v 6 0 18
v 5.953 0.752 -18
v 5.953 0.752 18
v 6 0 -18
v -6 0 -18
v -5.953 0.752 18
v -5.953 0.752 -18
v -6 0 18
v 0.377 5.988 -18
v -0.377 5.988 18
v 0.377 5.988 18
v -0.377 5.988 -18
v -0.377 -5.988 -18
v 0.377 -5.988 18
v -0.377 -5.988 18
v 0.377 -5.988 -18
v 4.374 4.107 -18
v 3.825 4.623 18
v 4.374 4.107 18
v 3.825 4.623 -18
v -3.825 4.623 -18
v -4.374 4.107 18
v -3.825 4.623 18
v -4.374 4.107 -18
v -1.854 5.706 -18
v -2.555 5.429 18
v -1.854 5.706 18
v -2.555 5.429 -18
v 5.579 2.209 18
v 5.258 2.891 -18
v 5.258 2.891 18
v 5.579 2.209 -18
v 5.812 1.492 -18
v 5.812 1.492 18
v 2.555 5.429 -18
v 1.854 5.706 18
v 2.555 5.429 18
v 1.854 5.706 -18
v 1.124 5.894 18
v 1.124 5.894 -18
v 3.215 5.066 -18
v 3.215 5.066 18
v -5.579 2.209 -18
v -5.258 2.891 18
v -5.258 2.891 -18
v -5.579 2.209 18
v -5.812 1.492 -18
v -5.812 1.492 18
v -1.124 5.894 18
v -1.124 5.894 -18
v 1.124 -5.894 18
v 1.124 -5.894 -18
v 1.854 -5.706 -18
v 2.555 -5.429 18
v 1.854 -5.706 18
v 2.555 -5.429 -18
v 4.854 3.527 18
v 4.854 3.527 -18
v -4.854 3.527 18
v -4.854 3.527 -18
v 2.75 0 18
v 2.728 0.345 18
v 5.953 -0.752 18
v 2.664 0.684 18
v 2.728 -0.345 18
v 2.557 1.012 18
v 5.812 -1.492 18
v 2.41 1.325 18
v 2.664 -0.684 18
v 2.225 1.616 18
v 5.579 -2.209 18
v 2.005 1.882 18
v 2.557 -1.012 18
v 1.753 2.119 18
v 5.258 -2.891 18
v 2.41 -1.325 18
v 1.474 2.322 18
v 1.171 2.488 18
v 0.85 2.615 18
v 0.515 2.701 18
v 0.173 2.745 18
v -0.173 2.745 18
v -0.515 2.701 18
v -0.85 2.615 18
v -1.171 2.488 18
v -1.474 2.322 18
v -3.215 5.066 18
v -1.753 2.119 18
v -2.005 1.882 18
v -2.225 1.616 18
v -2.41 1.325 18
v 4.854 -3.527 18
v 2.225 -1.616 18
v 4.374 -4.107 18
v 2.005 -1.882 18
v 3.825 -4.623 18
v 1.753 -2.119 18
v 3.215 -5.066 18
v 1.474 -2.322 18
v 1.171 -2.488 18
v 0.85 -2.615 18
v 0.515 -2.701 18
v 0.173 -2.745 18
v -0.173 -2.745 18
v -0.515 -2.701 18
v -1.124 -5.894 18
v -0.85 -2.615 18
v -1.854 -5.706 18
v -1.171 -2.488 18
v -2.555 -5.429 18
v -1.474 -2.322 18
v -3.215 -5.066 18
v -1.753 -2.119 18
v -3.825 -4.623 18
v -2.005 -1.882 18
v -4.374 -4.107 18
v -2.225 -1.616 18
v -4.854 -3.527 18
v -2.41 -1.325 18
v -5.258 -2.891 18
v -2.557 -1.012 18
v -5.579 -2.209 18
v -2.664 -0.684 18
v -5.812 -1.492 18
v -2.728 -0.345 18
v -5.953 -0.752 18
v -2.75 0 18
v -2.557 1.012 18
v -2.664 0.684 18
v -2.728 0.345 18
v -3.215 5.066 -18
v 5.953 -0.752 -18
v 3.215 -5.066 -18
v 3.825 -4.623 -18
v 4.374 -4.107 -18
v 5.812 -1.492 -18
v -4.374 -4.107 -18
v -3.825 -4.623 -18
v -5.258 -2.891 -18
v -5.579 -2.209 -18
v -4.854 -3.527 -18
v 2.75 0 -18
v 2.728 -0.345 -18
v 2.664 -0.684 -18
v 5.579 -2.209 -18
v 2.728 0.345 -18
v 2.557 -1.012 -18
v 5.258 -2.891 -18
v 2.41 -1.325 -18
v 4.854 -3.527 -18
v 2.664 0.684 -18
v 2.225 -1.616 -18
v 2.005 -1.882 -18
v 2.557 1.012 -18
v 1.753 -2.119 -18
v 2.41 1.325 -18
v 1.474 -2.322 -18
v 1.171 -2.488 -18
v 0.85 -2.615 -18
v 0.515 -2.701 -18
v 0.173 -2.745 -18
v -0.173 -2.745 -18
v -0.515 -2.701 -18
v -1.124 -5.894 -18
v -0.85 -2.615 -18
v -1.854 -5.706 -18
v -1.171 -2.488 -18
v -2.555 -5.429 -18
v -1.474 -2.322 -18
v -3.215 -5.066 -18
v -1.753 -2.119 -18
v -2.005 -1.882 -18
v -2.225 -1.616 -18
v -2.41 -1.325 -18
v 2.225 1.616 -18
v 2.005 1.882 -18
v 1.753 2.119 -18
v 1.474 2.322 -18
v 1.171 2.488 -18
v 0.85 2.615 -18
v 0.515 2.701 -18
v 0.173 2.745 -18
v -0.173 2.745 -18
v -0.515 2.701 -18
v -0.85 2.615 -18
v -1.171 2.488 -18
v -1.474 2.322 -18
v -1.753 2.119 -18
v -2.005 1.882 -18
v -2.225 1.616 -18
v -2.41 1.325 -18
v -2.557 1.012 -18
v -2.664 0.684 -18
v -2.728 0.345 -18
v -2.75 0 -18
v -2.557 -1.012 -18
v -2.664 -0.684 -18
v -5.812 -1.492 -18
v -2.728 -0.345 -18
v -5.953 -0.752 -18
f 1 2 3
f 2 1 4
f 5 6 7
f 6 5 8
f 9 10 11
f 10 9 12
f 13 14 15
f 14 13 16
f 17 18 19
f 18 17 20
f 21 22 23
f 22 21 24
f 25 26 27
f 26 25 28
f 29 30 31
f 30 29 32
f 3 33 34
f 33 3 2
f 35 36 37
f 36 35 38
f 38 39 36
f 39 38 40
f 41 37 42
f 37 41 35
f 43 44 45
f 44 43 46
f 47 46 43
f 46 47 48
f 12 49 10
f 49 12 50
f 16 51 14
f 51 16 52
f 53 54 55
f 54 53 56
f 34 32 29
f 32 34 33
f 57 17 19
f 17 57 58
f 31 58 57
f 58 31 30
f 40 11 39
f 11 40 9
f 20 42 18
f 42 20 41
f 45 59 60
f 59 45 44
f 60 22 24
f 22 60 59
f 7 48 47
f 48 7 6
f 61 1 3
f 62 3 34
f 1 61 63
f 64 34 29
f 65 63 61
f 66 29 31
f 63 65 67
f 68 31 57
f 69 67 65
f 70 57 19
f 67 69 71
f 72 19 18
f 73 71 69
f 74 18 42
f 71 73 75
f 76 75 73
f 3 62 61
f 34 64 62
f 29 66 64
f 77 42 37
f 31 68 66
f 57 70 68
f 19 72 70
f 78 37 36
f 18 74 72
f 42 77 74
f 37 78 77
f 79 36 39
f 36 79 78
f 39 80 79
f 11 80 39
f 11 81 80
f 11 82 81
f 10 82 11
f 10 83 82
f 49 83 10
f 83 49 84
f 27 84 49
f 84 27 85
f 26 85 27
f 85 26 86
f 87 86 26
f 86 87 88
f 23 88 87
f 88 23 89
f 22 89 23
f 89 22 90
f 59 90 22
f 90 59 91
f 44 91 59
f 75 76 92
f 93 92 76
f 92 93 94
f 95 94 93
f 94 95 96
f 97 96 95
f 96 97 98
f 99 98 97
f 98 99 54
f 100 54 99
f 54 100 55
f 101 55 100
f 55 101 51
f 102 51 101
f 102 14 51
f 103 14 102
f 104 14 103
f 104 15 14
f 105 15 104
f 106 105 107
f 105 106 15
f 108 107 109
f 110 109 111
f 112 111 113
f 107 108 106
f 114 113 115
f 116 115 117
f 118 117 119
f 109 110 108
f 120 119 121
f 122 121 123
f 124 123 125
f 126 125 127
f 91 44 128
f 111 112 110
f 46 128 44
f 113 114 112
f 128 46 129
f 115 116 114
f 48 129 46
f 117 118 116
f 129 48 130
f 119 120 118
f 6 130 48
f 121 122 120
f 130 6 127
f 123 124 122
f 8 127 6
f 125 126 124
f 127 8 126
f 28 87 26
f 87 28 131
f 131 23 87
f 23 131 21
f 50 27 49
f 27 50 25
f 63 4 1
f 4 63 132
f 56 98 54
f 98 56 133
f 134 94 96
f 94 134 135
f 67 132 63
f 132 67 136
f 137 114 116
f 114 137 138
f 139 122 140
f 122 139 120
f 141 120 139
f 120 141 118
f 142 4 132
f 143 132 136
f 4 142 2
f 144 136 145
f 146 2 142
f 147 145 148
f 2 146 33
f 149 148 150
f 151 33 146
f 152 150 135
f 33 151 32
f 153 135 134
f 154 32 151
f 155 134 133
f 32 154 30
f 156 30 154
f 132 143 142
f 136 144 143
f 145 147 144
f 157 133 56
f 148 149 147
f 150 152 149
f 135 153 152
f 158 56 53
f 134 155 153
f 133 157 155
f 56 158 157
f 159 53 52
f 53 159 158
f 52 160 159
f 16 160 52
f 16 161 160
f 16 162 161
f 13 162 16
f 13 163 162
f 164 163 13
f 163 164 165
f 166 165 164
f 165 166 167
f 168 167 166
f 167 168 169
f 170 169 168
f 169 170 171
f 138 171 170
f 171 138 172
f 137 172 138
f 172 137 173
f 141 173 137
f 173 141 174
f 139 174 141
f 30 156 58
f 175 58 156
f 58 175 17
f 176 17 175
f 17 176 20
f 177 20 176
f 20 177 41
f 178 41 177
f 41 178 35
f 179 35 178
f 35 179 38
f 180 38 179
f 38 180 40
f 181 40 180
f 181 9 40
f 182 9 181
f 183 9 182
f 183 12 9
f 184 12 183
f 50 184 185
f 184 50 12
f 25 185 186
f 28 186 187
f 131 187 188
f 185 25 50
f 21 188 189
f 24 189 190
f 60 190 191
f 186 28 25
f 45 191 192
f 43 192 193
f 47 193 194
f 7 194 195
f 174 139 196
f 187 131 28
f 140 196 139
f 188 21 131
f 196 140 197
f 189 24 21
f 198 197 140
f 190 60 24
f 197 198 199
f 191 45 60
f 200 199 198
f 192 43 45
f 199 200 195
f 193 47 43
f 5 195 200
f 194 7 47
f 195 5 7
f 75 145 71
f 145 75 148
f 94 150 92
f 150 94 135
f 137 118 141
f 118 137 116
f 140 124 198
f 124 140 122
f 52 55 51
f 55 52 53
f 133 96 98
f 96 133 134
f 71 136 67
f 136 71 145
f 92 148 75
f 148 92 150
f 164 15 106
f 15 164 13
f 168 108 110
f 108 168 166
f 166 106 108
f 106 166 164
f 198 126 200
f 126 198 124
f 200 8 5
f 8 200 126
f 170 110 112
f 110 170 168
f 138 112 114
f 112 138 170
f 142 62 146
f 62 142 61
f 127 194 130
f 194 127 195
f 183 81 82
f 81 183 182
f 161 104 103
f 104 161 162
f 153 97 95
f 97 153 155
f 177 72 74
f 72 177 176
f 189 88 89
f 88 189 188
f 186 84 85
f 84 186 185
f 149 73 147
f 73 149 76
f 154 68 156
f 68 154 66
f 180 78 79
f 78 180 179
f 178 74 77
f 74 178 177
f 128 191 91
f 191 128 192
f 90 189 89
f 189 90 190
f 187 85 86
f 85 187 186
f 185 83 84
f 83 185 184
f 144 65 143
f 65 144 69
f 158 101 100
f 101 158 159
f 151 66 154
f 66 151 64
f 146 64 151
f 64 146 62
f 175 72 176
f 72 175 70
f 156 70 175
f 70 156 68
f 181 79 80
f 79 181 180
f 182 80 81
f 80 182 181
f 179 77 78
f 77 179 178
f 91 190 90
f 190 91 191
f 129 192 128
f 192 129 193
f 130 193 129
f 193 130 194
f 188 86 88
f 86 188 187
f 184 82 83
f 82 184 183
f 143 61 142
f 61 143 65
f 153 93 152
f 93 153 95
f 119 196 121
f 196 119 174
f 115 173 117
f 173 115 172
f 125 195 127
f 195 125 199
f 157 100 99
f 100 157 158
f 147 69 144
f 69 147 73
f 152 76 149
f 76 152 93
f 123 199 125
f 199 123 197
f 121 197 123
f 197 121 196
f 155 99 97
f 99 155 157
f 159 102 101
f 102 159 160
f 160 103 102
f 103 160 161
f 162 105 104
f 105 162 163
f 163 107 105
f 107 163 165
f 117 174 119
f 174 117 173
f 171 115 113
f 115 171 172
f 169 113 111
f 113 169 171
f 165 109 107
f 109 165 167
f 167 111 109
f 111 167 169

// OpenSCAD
$fn = 50;


difference() {
	union() {
		translate(v = [0, 0, -18.0000000000]) {
			cylinder(h = 36, r = 6.0000000000);
		}
	}
	union() {
		translate(v = [0, 0, -100.0000000000]) {
			cylinder(h = 200, r = 2.7500000000);
		}
	}
}
